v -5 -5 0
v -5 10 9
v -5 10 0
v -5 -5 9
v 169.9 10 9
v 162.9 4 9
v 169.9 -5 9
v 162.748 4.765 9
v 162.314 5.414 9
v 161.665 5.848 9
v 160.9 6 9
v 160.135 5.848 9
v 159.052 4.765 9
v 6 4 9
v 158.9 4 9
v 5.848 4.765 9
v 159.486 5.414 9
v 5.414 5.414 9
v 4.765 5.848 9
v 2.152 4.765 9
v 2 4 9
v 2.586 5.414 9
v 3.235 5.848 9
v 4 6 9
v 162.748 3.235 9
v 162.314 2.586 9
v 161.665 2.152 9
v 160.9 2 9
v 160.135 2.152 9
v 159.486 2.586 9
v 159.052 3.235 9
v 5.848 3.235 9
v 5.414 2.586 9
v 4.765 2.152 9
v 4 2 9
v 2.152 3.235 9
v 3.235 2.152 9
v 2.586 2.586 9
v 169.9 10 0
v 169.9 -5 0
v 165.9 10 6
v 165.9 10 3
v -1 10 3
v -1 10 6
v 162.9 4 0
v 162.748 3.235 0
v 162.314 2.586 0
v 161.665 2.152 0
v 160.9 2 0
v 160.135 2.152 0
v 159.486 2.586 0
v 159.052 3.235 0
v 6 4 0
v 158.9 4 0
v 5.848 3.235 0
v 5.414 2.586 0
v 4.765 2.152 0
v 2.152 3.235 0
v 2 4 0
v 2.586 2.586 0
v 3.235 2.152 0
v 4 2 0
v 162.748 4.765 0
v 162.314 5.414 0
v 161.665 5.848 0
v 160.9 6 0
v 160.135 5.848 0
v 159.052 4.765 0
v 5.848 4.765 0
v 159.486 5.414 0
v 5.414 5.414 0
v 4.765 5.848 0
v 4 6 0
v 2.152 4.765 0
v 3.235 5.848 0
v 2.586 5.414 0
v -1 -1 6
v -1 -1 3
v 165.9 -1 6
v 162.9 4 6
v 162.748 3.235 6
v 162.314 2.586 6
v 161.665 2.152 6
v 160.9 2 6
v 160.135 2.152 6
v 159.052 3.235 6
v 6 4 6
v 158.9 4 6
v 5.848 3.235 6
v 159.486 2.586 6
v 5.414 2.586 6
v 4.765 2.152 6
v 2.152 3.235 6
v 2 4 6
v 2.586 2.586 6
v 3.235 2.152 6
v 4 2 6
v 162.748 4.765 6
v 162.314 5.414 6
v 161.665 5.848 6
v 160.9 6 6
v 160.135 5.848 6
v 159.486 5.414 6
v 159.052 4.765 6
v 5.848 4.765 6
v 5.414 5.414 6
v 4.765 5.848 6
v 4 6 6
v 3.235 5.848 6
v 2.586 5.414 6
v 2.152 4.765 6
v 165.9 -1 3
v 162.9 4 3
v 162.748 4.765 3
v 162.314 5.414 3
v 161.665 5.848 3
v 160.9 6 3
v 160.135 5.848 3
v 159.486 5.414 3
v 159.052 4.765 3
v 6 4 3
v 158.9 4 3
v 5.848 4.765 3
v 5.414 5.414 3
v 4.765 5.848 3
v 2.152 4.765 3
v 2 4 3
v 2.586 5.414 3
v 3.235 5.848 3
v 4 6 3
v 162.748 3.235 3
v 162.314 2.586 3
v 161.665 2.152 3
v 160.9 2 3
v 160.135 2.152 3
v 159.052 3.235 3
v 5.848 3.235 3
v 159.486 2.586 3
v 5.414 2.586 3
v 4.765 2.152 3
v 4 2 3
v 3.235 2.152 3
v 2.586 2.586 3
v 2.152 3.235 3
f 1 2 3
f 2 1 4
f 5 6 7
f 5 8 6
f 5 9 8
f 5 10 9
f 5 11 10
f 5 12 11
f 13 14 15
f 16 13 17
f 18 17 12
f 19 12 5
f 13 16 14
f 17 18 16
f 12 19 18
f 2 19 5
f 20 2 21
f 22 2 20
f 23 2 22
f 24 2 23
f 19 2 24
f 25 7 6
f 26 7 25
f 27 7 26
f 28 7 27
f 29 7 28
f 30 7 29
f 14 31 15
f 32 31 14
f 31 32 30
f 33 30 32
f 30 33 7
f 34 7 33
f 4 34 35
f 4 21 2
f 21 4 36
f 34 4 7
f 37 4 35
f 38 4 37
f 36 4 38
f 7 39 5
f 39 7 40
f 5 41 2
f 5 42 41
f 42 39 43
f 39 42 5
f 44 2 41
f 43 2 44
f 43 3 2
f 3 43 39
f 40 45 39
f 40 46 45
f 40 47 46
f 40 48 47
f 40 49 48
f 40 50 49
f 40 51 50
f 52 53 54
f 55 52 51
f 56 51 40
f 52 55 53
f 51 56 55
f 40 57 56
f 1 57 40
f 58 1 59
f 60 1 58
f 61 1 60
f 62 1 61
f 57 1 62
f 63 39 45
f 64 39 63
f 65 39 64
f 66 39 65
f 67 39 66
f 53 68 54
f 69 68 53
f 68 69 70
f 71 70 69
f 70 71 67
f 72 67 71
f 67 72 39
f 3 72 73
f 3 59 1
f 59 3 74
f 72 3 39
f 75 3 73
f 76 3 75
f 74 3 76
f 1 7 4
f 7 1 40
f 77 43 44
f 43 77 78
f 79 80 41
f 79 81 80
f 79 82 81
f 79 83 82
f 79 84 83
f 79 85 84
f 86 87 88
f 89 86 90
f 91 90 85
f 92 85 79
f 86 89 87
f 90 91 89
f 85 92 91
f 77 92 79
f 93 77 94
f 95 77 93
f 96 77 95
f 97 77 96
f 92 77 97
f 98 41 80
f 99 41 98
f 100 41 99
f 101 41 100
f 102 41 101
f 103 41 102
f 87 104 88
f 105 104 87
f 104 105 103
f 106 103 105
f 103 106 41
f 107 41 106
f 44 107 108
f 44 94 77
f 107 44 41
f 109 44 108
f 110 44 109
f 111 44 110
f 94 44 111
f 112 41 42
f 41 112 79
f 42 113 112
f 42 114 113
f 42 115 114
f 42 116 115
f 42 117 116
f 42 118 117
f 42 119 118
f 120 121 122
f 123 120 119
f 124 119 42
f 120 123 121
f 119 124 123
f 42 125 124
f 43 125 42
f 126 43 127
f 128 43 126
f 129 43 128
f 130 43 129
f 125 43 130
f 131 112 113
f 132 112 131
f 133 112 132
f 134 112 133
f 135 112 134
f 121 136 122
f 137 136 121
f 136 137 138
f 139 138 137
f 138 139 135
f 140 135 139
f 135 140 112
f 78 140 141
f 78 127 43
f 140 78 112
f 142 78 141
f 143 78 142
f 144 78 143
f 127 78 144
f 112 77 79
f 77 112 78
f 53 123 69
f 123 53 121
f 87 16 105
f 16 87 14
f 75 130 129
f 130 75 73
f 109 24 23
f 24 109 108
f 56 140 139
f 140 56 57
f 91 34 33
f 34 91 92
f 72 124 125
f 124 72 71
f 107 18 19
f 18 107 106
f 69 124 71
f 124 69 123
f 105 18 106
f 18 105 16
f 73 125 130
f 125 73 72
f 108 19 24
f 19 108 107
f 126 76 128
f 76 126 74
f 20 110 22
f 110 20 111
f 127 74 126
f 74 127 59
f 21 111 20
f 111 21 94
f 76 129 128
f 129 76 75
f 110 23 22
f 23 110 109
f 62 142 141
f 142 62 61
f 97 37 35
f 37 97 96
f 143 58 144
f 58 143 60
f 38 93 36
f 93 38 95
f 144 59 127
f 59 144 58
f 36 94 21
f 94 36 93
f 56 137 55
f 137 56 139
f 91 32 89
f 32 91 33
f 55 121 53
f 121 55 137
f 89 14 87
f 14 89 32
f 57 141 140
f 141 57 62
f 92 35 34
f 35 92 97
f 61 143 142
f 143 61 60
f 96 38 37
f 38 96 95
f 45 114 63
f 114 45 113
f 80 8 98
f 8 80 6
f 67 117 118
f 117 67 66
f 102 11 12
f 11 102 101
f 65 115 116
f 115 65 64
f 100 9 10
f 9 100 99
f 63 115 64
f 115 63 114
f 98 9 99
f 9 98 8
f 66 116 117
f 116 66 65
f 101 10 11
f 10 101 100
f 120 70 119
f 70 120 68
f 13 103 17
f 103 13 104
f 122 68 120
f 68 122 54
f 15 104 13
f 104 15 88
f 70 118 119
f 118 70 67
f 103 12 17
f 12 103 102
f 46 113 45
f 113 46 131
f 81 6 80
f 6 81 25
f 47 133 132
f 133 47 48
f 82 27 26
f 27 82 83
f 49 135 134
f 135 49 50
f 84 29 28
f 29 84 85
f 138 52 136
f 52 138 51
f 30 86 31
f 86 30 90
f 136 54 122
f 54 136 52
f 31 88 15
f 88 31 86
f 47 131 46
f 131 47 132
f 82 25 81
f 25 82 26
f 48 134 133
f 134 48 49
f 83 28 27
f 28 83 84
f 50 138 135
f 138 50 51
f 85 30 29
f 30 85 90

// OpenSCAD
difference() {
	translate([-5,-5,0])
		cube([174.9,15,9]);

	translate([-1,-1,3])
		cube([166.9,15,3]);

	//holes
	translate([4,4,0])
		cylinder(10,2,2, $fn=16);
	translate([160.9,4,0])
		cylinder(10,2,2, $fn=16);
}//difference
